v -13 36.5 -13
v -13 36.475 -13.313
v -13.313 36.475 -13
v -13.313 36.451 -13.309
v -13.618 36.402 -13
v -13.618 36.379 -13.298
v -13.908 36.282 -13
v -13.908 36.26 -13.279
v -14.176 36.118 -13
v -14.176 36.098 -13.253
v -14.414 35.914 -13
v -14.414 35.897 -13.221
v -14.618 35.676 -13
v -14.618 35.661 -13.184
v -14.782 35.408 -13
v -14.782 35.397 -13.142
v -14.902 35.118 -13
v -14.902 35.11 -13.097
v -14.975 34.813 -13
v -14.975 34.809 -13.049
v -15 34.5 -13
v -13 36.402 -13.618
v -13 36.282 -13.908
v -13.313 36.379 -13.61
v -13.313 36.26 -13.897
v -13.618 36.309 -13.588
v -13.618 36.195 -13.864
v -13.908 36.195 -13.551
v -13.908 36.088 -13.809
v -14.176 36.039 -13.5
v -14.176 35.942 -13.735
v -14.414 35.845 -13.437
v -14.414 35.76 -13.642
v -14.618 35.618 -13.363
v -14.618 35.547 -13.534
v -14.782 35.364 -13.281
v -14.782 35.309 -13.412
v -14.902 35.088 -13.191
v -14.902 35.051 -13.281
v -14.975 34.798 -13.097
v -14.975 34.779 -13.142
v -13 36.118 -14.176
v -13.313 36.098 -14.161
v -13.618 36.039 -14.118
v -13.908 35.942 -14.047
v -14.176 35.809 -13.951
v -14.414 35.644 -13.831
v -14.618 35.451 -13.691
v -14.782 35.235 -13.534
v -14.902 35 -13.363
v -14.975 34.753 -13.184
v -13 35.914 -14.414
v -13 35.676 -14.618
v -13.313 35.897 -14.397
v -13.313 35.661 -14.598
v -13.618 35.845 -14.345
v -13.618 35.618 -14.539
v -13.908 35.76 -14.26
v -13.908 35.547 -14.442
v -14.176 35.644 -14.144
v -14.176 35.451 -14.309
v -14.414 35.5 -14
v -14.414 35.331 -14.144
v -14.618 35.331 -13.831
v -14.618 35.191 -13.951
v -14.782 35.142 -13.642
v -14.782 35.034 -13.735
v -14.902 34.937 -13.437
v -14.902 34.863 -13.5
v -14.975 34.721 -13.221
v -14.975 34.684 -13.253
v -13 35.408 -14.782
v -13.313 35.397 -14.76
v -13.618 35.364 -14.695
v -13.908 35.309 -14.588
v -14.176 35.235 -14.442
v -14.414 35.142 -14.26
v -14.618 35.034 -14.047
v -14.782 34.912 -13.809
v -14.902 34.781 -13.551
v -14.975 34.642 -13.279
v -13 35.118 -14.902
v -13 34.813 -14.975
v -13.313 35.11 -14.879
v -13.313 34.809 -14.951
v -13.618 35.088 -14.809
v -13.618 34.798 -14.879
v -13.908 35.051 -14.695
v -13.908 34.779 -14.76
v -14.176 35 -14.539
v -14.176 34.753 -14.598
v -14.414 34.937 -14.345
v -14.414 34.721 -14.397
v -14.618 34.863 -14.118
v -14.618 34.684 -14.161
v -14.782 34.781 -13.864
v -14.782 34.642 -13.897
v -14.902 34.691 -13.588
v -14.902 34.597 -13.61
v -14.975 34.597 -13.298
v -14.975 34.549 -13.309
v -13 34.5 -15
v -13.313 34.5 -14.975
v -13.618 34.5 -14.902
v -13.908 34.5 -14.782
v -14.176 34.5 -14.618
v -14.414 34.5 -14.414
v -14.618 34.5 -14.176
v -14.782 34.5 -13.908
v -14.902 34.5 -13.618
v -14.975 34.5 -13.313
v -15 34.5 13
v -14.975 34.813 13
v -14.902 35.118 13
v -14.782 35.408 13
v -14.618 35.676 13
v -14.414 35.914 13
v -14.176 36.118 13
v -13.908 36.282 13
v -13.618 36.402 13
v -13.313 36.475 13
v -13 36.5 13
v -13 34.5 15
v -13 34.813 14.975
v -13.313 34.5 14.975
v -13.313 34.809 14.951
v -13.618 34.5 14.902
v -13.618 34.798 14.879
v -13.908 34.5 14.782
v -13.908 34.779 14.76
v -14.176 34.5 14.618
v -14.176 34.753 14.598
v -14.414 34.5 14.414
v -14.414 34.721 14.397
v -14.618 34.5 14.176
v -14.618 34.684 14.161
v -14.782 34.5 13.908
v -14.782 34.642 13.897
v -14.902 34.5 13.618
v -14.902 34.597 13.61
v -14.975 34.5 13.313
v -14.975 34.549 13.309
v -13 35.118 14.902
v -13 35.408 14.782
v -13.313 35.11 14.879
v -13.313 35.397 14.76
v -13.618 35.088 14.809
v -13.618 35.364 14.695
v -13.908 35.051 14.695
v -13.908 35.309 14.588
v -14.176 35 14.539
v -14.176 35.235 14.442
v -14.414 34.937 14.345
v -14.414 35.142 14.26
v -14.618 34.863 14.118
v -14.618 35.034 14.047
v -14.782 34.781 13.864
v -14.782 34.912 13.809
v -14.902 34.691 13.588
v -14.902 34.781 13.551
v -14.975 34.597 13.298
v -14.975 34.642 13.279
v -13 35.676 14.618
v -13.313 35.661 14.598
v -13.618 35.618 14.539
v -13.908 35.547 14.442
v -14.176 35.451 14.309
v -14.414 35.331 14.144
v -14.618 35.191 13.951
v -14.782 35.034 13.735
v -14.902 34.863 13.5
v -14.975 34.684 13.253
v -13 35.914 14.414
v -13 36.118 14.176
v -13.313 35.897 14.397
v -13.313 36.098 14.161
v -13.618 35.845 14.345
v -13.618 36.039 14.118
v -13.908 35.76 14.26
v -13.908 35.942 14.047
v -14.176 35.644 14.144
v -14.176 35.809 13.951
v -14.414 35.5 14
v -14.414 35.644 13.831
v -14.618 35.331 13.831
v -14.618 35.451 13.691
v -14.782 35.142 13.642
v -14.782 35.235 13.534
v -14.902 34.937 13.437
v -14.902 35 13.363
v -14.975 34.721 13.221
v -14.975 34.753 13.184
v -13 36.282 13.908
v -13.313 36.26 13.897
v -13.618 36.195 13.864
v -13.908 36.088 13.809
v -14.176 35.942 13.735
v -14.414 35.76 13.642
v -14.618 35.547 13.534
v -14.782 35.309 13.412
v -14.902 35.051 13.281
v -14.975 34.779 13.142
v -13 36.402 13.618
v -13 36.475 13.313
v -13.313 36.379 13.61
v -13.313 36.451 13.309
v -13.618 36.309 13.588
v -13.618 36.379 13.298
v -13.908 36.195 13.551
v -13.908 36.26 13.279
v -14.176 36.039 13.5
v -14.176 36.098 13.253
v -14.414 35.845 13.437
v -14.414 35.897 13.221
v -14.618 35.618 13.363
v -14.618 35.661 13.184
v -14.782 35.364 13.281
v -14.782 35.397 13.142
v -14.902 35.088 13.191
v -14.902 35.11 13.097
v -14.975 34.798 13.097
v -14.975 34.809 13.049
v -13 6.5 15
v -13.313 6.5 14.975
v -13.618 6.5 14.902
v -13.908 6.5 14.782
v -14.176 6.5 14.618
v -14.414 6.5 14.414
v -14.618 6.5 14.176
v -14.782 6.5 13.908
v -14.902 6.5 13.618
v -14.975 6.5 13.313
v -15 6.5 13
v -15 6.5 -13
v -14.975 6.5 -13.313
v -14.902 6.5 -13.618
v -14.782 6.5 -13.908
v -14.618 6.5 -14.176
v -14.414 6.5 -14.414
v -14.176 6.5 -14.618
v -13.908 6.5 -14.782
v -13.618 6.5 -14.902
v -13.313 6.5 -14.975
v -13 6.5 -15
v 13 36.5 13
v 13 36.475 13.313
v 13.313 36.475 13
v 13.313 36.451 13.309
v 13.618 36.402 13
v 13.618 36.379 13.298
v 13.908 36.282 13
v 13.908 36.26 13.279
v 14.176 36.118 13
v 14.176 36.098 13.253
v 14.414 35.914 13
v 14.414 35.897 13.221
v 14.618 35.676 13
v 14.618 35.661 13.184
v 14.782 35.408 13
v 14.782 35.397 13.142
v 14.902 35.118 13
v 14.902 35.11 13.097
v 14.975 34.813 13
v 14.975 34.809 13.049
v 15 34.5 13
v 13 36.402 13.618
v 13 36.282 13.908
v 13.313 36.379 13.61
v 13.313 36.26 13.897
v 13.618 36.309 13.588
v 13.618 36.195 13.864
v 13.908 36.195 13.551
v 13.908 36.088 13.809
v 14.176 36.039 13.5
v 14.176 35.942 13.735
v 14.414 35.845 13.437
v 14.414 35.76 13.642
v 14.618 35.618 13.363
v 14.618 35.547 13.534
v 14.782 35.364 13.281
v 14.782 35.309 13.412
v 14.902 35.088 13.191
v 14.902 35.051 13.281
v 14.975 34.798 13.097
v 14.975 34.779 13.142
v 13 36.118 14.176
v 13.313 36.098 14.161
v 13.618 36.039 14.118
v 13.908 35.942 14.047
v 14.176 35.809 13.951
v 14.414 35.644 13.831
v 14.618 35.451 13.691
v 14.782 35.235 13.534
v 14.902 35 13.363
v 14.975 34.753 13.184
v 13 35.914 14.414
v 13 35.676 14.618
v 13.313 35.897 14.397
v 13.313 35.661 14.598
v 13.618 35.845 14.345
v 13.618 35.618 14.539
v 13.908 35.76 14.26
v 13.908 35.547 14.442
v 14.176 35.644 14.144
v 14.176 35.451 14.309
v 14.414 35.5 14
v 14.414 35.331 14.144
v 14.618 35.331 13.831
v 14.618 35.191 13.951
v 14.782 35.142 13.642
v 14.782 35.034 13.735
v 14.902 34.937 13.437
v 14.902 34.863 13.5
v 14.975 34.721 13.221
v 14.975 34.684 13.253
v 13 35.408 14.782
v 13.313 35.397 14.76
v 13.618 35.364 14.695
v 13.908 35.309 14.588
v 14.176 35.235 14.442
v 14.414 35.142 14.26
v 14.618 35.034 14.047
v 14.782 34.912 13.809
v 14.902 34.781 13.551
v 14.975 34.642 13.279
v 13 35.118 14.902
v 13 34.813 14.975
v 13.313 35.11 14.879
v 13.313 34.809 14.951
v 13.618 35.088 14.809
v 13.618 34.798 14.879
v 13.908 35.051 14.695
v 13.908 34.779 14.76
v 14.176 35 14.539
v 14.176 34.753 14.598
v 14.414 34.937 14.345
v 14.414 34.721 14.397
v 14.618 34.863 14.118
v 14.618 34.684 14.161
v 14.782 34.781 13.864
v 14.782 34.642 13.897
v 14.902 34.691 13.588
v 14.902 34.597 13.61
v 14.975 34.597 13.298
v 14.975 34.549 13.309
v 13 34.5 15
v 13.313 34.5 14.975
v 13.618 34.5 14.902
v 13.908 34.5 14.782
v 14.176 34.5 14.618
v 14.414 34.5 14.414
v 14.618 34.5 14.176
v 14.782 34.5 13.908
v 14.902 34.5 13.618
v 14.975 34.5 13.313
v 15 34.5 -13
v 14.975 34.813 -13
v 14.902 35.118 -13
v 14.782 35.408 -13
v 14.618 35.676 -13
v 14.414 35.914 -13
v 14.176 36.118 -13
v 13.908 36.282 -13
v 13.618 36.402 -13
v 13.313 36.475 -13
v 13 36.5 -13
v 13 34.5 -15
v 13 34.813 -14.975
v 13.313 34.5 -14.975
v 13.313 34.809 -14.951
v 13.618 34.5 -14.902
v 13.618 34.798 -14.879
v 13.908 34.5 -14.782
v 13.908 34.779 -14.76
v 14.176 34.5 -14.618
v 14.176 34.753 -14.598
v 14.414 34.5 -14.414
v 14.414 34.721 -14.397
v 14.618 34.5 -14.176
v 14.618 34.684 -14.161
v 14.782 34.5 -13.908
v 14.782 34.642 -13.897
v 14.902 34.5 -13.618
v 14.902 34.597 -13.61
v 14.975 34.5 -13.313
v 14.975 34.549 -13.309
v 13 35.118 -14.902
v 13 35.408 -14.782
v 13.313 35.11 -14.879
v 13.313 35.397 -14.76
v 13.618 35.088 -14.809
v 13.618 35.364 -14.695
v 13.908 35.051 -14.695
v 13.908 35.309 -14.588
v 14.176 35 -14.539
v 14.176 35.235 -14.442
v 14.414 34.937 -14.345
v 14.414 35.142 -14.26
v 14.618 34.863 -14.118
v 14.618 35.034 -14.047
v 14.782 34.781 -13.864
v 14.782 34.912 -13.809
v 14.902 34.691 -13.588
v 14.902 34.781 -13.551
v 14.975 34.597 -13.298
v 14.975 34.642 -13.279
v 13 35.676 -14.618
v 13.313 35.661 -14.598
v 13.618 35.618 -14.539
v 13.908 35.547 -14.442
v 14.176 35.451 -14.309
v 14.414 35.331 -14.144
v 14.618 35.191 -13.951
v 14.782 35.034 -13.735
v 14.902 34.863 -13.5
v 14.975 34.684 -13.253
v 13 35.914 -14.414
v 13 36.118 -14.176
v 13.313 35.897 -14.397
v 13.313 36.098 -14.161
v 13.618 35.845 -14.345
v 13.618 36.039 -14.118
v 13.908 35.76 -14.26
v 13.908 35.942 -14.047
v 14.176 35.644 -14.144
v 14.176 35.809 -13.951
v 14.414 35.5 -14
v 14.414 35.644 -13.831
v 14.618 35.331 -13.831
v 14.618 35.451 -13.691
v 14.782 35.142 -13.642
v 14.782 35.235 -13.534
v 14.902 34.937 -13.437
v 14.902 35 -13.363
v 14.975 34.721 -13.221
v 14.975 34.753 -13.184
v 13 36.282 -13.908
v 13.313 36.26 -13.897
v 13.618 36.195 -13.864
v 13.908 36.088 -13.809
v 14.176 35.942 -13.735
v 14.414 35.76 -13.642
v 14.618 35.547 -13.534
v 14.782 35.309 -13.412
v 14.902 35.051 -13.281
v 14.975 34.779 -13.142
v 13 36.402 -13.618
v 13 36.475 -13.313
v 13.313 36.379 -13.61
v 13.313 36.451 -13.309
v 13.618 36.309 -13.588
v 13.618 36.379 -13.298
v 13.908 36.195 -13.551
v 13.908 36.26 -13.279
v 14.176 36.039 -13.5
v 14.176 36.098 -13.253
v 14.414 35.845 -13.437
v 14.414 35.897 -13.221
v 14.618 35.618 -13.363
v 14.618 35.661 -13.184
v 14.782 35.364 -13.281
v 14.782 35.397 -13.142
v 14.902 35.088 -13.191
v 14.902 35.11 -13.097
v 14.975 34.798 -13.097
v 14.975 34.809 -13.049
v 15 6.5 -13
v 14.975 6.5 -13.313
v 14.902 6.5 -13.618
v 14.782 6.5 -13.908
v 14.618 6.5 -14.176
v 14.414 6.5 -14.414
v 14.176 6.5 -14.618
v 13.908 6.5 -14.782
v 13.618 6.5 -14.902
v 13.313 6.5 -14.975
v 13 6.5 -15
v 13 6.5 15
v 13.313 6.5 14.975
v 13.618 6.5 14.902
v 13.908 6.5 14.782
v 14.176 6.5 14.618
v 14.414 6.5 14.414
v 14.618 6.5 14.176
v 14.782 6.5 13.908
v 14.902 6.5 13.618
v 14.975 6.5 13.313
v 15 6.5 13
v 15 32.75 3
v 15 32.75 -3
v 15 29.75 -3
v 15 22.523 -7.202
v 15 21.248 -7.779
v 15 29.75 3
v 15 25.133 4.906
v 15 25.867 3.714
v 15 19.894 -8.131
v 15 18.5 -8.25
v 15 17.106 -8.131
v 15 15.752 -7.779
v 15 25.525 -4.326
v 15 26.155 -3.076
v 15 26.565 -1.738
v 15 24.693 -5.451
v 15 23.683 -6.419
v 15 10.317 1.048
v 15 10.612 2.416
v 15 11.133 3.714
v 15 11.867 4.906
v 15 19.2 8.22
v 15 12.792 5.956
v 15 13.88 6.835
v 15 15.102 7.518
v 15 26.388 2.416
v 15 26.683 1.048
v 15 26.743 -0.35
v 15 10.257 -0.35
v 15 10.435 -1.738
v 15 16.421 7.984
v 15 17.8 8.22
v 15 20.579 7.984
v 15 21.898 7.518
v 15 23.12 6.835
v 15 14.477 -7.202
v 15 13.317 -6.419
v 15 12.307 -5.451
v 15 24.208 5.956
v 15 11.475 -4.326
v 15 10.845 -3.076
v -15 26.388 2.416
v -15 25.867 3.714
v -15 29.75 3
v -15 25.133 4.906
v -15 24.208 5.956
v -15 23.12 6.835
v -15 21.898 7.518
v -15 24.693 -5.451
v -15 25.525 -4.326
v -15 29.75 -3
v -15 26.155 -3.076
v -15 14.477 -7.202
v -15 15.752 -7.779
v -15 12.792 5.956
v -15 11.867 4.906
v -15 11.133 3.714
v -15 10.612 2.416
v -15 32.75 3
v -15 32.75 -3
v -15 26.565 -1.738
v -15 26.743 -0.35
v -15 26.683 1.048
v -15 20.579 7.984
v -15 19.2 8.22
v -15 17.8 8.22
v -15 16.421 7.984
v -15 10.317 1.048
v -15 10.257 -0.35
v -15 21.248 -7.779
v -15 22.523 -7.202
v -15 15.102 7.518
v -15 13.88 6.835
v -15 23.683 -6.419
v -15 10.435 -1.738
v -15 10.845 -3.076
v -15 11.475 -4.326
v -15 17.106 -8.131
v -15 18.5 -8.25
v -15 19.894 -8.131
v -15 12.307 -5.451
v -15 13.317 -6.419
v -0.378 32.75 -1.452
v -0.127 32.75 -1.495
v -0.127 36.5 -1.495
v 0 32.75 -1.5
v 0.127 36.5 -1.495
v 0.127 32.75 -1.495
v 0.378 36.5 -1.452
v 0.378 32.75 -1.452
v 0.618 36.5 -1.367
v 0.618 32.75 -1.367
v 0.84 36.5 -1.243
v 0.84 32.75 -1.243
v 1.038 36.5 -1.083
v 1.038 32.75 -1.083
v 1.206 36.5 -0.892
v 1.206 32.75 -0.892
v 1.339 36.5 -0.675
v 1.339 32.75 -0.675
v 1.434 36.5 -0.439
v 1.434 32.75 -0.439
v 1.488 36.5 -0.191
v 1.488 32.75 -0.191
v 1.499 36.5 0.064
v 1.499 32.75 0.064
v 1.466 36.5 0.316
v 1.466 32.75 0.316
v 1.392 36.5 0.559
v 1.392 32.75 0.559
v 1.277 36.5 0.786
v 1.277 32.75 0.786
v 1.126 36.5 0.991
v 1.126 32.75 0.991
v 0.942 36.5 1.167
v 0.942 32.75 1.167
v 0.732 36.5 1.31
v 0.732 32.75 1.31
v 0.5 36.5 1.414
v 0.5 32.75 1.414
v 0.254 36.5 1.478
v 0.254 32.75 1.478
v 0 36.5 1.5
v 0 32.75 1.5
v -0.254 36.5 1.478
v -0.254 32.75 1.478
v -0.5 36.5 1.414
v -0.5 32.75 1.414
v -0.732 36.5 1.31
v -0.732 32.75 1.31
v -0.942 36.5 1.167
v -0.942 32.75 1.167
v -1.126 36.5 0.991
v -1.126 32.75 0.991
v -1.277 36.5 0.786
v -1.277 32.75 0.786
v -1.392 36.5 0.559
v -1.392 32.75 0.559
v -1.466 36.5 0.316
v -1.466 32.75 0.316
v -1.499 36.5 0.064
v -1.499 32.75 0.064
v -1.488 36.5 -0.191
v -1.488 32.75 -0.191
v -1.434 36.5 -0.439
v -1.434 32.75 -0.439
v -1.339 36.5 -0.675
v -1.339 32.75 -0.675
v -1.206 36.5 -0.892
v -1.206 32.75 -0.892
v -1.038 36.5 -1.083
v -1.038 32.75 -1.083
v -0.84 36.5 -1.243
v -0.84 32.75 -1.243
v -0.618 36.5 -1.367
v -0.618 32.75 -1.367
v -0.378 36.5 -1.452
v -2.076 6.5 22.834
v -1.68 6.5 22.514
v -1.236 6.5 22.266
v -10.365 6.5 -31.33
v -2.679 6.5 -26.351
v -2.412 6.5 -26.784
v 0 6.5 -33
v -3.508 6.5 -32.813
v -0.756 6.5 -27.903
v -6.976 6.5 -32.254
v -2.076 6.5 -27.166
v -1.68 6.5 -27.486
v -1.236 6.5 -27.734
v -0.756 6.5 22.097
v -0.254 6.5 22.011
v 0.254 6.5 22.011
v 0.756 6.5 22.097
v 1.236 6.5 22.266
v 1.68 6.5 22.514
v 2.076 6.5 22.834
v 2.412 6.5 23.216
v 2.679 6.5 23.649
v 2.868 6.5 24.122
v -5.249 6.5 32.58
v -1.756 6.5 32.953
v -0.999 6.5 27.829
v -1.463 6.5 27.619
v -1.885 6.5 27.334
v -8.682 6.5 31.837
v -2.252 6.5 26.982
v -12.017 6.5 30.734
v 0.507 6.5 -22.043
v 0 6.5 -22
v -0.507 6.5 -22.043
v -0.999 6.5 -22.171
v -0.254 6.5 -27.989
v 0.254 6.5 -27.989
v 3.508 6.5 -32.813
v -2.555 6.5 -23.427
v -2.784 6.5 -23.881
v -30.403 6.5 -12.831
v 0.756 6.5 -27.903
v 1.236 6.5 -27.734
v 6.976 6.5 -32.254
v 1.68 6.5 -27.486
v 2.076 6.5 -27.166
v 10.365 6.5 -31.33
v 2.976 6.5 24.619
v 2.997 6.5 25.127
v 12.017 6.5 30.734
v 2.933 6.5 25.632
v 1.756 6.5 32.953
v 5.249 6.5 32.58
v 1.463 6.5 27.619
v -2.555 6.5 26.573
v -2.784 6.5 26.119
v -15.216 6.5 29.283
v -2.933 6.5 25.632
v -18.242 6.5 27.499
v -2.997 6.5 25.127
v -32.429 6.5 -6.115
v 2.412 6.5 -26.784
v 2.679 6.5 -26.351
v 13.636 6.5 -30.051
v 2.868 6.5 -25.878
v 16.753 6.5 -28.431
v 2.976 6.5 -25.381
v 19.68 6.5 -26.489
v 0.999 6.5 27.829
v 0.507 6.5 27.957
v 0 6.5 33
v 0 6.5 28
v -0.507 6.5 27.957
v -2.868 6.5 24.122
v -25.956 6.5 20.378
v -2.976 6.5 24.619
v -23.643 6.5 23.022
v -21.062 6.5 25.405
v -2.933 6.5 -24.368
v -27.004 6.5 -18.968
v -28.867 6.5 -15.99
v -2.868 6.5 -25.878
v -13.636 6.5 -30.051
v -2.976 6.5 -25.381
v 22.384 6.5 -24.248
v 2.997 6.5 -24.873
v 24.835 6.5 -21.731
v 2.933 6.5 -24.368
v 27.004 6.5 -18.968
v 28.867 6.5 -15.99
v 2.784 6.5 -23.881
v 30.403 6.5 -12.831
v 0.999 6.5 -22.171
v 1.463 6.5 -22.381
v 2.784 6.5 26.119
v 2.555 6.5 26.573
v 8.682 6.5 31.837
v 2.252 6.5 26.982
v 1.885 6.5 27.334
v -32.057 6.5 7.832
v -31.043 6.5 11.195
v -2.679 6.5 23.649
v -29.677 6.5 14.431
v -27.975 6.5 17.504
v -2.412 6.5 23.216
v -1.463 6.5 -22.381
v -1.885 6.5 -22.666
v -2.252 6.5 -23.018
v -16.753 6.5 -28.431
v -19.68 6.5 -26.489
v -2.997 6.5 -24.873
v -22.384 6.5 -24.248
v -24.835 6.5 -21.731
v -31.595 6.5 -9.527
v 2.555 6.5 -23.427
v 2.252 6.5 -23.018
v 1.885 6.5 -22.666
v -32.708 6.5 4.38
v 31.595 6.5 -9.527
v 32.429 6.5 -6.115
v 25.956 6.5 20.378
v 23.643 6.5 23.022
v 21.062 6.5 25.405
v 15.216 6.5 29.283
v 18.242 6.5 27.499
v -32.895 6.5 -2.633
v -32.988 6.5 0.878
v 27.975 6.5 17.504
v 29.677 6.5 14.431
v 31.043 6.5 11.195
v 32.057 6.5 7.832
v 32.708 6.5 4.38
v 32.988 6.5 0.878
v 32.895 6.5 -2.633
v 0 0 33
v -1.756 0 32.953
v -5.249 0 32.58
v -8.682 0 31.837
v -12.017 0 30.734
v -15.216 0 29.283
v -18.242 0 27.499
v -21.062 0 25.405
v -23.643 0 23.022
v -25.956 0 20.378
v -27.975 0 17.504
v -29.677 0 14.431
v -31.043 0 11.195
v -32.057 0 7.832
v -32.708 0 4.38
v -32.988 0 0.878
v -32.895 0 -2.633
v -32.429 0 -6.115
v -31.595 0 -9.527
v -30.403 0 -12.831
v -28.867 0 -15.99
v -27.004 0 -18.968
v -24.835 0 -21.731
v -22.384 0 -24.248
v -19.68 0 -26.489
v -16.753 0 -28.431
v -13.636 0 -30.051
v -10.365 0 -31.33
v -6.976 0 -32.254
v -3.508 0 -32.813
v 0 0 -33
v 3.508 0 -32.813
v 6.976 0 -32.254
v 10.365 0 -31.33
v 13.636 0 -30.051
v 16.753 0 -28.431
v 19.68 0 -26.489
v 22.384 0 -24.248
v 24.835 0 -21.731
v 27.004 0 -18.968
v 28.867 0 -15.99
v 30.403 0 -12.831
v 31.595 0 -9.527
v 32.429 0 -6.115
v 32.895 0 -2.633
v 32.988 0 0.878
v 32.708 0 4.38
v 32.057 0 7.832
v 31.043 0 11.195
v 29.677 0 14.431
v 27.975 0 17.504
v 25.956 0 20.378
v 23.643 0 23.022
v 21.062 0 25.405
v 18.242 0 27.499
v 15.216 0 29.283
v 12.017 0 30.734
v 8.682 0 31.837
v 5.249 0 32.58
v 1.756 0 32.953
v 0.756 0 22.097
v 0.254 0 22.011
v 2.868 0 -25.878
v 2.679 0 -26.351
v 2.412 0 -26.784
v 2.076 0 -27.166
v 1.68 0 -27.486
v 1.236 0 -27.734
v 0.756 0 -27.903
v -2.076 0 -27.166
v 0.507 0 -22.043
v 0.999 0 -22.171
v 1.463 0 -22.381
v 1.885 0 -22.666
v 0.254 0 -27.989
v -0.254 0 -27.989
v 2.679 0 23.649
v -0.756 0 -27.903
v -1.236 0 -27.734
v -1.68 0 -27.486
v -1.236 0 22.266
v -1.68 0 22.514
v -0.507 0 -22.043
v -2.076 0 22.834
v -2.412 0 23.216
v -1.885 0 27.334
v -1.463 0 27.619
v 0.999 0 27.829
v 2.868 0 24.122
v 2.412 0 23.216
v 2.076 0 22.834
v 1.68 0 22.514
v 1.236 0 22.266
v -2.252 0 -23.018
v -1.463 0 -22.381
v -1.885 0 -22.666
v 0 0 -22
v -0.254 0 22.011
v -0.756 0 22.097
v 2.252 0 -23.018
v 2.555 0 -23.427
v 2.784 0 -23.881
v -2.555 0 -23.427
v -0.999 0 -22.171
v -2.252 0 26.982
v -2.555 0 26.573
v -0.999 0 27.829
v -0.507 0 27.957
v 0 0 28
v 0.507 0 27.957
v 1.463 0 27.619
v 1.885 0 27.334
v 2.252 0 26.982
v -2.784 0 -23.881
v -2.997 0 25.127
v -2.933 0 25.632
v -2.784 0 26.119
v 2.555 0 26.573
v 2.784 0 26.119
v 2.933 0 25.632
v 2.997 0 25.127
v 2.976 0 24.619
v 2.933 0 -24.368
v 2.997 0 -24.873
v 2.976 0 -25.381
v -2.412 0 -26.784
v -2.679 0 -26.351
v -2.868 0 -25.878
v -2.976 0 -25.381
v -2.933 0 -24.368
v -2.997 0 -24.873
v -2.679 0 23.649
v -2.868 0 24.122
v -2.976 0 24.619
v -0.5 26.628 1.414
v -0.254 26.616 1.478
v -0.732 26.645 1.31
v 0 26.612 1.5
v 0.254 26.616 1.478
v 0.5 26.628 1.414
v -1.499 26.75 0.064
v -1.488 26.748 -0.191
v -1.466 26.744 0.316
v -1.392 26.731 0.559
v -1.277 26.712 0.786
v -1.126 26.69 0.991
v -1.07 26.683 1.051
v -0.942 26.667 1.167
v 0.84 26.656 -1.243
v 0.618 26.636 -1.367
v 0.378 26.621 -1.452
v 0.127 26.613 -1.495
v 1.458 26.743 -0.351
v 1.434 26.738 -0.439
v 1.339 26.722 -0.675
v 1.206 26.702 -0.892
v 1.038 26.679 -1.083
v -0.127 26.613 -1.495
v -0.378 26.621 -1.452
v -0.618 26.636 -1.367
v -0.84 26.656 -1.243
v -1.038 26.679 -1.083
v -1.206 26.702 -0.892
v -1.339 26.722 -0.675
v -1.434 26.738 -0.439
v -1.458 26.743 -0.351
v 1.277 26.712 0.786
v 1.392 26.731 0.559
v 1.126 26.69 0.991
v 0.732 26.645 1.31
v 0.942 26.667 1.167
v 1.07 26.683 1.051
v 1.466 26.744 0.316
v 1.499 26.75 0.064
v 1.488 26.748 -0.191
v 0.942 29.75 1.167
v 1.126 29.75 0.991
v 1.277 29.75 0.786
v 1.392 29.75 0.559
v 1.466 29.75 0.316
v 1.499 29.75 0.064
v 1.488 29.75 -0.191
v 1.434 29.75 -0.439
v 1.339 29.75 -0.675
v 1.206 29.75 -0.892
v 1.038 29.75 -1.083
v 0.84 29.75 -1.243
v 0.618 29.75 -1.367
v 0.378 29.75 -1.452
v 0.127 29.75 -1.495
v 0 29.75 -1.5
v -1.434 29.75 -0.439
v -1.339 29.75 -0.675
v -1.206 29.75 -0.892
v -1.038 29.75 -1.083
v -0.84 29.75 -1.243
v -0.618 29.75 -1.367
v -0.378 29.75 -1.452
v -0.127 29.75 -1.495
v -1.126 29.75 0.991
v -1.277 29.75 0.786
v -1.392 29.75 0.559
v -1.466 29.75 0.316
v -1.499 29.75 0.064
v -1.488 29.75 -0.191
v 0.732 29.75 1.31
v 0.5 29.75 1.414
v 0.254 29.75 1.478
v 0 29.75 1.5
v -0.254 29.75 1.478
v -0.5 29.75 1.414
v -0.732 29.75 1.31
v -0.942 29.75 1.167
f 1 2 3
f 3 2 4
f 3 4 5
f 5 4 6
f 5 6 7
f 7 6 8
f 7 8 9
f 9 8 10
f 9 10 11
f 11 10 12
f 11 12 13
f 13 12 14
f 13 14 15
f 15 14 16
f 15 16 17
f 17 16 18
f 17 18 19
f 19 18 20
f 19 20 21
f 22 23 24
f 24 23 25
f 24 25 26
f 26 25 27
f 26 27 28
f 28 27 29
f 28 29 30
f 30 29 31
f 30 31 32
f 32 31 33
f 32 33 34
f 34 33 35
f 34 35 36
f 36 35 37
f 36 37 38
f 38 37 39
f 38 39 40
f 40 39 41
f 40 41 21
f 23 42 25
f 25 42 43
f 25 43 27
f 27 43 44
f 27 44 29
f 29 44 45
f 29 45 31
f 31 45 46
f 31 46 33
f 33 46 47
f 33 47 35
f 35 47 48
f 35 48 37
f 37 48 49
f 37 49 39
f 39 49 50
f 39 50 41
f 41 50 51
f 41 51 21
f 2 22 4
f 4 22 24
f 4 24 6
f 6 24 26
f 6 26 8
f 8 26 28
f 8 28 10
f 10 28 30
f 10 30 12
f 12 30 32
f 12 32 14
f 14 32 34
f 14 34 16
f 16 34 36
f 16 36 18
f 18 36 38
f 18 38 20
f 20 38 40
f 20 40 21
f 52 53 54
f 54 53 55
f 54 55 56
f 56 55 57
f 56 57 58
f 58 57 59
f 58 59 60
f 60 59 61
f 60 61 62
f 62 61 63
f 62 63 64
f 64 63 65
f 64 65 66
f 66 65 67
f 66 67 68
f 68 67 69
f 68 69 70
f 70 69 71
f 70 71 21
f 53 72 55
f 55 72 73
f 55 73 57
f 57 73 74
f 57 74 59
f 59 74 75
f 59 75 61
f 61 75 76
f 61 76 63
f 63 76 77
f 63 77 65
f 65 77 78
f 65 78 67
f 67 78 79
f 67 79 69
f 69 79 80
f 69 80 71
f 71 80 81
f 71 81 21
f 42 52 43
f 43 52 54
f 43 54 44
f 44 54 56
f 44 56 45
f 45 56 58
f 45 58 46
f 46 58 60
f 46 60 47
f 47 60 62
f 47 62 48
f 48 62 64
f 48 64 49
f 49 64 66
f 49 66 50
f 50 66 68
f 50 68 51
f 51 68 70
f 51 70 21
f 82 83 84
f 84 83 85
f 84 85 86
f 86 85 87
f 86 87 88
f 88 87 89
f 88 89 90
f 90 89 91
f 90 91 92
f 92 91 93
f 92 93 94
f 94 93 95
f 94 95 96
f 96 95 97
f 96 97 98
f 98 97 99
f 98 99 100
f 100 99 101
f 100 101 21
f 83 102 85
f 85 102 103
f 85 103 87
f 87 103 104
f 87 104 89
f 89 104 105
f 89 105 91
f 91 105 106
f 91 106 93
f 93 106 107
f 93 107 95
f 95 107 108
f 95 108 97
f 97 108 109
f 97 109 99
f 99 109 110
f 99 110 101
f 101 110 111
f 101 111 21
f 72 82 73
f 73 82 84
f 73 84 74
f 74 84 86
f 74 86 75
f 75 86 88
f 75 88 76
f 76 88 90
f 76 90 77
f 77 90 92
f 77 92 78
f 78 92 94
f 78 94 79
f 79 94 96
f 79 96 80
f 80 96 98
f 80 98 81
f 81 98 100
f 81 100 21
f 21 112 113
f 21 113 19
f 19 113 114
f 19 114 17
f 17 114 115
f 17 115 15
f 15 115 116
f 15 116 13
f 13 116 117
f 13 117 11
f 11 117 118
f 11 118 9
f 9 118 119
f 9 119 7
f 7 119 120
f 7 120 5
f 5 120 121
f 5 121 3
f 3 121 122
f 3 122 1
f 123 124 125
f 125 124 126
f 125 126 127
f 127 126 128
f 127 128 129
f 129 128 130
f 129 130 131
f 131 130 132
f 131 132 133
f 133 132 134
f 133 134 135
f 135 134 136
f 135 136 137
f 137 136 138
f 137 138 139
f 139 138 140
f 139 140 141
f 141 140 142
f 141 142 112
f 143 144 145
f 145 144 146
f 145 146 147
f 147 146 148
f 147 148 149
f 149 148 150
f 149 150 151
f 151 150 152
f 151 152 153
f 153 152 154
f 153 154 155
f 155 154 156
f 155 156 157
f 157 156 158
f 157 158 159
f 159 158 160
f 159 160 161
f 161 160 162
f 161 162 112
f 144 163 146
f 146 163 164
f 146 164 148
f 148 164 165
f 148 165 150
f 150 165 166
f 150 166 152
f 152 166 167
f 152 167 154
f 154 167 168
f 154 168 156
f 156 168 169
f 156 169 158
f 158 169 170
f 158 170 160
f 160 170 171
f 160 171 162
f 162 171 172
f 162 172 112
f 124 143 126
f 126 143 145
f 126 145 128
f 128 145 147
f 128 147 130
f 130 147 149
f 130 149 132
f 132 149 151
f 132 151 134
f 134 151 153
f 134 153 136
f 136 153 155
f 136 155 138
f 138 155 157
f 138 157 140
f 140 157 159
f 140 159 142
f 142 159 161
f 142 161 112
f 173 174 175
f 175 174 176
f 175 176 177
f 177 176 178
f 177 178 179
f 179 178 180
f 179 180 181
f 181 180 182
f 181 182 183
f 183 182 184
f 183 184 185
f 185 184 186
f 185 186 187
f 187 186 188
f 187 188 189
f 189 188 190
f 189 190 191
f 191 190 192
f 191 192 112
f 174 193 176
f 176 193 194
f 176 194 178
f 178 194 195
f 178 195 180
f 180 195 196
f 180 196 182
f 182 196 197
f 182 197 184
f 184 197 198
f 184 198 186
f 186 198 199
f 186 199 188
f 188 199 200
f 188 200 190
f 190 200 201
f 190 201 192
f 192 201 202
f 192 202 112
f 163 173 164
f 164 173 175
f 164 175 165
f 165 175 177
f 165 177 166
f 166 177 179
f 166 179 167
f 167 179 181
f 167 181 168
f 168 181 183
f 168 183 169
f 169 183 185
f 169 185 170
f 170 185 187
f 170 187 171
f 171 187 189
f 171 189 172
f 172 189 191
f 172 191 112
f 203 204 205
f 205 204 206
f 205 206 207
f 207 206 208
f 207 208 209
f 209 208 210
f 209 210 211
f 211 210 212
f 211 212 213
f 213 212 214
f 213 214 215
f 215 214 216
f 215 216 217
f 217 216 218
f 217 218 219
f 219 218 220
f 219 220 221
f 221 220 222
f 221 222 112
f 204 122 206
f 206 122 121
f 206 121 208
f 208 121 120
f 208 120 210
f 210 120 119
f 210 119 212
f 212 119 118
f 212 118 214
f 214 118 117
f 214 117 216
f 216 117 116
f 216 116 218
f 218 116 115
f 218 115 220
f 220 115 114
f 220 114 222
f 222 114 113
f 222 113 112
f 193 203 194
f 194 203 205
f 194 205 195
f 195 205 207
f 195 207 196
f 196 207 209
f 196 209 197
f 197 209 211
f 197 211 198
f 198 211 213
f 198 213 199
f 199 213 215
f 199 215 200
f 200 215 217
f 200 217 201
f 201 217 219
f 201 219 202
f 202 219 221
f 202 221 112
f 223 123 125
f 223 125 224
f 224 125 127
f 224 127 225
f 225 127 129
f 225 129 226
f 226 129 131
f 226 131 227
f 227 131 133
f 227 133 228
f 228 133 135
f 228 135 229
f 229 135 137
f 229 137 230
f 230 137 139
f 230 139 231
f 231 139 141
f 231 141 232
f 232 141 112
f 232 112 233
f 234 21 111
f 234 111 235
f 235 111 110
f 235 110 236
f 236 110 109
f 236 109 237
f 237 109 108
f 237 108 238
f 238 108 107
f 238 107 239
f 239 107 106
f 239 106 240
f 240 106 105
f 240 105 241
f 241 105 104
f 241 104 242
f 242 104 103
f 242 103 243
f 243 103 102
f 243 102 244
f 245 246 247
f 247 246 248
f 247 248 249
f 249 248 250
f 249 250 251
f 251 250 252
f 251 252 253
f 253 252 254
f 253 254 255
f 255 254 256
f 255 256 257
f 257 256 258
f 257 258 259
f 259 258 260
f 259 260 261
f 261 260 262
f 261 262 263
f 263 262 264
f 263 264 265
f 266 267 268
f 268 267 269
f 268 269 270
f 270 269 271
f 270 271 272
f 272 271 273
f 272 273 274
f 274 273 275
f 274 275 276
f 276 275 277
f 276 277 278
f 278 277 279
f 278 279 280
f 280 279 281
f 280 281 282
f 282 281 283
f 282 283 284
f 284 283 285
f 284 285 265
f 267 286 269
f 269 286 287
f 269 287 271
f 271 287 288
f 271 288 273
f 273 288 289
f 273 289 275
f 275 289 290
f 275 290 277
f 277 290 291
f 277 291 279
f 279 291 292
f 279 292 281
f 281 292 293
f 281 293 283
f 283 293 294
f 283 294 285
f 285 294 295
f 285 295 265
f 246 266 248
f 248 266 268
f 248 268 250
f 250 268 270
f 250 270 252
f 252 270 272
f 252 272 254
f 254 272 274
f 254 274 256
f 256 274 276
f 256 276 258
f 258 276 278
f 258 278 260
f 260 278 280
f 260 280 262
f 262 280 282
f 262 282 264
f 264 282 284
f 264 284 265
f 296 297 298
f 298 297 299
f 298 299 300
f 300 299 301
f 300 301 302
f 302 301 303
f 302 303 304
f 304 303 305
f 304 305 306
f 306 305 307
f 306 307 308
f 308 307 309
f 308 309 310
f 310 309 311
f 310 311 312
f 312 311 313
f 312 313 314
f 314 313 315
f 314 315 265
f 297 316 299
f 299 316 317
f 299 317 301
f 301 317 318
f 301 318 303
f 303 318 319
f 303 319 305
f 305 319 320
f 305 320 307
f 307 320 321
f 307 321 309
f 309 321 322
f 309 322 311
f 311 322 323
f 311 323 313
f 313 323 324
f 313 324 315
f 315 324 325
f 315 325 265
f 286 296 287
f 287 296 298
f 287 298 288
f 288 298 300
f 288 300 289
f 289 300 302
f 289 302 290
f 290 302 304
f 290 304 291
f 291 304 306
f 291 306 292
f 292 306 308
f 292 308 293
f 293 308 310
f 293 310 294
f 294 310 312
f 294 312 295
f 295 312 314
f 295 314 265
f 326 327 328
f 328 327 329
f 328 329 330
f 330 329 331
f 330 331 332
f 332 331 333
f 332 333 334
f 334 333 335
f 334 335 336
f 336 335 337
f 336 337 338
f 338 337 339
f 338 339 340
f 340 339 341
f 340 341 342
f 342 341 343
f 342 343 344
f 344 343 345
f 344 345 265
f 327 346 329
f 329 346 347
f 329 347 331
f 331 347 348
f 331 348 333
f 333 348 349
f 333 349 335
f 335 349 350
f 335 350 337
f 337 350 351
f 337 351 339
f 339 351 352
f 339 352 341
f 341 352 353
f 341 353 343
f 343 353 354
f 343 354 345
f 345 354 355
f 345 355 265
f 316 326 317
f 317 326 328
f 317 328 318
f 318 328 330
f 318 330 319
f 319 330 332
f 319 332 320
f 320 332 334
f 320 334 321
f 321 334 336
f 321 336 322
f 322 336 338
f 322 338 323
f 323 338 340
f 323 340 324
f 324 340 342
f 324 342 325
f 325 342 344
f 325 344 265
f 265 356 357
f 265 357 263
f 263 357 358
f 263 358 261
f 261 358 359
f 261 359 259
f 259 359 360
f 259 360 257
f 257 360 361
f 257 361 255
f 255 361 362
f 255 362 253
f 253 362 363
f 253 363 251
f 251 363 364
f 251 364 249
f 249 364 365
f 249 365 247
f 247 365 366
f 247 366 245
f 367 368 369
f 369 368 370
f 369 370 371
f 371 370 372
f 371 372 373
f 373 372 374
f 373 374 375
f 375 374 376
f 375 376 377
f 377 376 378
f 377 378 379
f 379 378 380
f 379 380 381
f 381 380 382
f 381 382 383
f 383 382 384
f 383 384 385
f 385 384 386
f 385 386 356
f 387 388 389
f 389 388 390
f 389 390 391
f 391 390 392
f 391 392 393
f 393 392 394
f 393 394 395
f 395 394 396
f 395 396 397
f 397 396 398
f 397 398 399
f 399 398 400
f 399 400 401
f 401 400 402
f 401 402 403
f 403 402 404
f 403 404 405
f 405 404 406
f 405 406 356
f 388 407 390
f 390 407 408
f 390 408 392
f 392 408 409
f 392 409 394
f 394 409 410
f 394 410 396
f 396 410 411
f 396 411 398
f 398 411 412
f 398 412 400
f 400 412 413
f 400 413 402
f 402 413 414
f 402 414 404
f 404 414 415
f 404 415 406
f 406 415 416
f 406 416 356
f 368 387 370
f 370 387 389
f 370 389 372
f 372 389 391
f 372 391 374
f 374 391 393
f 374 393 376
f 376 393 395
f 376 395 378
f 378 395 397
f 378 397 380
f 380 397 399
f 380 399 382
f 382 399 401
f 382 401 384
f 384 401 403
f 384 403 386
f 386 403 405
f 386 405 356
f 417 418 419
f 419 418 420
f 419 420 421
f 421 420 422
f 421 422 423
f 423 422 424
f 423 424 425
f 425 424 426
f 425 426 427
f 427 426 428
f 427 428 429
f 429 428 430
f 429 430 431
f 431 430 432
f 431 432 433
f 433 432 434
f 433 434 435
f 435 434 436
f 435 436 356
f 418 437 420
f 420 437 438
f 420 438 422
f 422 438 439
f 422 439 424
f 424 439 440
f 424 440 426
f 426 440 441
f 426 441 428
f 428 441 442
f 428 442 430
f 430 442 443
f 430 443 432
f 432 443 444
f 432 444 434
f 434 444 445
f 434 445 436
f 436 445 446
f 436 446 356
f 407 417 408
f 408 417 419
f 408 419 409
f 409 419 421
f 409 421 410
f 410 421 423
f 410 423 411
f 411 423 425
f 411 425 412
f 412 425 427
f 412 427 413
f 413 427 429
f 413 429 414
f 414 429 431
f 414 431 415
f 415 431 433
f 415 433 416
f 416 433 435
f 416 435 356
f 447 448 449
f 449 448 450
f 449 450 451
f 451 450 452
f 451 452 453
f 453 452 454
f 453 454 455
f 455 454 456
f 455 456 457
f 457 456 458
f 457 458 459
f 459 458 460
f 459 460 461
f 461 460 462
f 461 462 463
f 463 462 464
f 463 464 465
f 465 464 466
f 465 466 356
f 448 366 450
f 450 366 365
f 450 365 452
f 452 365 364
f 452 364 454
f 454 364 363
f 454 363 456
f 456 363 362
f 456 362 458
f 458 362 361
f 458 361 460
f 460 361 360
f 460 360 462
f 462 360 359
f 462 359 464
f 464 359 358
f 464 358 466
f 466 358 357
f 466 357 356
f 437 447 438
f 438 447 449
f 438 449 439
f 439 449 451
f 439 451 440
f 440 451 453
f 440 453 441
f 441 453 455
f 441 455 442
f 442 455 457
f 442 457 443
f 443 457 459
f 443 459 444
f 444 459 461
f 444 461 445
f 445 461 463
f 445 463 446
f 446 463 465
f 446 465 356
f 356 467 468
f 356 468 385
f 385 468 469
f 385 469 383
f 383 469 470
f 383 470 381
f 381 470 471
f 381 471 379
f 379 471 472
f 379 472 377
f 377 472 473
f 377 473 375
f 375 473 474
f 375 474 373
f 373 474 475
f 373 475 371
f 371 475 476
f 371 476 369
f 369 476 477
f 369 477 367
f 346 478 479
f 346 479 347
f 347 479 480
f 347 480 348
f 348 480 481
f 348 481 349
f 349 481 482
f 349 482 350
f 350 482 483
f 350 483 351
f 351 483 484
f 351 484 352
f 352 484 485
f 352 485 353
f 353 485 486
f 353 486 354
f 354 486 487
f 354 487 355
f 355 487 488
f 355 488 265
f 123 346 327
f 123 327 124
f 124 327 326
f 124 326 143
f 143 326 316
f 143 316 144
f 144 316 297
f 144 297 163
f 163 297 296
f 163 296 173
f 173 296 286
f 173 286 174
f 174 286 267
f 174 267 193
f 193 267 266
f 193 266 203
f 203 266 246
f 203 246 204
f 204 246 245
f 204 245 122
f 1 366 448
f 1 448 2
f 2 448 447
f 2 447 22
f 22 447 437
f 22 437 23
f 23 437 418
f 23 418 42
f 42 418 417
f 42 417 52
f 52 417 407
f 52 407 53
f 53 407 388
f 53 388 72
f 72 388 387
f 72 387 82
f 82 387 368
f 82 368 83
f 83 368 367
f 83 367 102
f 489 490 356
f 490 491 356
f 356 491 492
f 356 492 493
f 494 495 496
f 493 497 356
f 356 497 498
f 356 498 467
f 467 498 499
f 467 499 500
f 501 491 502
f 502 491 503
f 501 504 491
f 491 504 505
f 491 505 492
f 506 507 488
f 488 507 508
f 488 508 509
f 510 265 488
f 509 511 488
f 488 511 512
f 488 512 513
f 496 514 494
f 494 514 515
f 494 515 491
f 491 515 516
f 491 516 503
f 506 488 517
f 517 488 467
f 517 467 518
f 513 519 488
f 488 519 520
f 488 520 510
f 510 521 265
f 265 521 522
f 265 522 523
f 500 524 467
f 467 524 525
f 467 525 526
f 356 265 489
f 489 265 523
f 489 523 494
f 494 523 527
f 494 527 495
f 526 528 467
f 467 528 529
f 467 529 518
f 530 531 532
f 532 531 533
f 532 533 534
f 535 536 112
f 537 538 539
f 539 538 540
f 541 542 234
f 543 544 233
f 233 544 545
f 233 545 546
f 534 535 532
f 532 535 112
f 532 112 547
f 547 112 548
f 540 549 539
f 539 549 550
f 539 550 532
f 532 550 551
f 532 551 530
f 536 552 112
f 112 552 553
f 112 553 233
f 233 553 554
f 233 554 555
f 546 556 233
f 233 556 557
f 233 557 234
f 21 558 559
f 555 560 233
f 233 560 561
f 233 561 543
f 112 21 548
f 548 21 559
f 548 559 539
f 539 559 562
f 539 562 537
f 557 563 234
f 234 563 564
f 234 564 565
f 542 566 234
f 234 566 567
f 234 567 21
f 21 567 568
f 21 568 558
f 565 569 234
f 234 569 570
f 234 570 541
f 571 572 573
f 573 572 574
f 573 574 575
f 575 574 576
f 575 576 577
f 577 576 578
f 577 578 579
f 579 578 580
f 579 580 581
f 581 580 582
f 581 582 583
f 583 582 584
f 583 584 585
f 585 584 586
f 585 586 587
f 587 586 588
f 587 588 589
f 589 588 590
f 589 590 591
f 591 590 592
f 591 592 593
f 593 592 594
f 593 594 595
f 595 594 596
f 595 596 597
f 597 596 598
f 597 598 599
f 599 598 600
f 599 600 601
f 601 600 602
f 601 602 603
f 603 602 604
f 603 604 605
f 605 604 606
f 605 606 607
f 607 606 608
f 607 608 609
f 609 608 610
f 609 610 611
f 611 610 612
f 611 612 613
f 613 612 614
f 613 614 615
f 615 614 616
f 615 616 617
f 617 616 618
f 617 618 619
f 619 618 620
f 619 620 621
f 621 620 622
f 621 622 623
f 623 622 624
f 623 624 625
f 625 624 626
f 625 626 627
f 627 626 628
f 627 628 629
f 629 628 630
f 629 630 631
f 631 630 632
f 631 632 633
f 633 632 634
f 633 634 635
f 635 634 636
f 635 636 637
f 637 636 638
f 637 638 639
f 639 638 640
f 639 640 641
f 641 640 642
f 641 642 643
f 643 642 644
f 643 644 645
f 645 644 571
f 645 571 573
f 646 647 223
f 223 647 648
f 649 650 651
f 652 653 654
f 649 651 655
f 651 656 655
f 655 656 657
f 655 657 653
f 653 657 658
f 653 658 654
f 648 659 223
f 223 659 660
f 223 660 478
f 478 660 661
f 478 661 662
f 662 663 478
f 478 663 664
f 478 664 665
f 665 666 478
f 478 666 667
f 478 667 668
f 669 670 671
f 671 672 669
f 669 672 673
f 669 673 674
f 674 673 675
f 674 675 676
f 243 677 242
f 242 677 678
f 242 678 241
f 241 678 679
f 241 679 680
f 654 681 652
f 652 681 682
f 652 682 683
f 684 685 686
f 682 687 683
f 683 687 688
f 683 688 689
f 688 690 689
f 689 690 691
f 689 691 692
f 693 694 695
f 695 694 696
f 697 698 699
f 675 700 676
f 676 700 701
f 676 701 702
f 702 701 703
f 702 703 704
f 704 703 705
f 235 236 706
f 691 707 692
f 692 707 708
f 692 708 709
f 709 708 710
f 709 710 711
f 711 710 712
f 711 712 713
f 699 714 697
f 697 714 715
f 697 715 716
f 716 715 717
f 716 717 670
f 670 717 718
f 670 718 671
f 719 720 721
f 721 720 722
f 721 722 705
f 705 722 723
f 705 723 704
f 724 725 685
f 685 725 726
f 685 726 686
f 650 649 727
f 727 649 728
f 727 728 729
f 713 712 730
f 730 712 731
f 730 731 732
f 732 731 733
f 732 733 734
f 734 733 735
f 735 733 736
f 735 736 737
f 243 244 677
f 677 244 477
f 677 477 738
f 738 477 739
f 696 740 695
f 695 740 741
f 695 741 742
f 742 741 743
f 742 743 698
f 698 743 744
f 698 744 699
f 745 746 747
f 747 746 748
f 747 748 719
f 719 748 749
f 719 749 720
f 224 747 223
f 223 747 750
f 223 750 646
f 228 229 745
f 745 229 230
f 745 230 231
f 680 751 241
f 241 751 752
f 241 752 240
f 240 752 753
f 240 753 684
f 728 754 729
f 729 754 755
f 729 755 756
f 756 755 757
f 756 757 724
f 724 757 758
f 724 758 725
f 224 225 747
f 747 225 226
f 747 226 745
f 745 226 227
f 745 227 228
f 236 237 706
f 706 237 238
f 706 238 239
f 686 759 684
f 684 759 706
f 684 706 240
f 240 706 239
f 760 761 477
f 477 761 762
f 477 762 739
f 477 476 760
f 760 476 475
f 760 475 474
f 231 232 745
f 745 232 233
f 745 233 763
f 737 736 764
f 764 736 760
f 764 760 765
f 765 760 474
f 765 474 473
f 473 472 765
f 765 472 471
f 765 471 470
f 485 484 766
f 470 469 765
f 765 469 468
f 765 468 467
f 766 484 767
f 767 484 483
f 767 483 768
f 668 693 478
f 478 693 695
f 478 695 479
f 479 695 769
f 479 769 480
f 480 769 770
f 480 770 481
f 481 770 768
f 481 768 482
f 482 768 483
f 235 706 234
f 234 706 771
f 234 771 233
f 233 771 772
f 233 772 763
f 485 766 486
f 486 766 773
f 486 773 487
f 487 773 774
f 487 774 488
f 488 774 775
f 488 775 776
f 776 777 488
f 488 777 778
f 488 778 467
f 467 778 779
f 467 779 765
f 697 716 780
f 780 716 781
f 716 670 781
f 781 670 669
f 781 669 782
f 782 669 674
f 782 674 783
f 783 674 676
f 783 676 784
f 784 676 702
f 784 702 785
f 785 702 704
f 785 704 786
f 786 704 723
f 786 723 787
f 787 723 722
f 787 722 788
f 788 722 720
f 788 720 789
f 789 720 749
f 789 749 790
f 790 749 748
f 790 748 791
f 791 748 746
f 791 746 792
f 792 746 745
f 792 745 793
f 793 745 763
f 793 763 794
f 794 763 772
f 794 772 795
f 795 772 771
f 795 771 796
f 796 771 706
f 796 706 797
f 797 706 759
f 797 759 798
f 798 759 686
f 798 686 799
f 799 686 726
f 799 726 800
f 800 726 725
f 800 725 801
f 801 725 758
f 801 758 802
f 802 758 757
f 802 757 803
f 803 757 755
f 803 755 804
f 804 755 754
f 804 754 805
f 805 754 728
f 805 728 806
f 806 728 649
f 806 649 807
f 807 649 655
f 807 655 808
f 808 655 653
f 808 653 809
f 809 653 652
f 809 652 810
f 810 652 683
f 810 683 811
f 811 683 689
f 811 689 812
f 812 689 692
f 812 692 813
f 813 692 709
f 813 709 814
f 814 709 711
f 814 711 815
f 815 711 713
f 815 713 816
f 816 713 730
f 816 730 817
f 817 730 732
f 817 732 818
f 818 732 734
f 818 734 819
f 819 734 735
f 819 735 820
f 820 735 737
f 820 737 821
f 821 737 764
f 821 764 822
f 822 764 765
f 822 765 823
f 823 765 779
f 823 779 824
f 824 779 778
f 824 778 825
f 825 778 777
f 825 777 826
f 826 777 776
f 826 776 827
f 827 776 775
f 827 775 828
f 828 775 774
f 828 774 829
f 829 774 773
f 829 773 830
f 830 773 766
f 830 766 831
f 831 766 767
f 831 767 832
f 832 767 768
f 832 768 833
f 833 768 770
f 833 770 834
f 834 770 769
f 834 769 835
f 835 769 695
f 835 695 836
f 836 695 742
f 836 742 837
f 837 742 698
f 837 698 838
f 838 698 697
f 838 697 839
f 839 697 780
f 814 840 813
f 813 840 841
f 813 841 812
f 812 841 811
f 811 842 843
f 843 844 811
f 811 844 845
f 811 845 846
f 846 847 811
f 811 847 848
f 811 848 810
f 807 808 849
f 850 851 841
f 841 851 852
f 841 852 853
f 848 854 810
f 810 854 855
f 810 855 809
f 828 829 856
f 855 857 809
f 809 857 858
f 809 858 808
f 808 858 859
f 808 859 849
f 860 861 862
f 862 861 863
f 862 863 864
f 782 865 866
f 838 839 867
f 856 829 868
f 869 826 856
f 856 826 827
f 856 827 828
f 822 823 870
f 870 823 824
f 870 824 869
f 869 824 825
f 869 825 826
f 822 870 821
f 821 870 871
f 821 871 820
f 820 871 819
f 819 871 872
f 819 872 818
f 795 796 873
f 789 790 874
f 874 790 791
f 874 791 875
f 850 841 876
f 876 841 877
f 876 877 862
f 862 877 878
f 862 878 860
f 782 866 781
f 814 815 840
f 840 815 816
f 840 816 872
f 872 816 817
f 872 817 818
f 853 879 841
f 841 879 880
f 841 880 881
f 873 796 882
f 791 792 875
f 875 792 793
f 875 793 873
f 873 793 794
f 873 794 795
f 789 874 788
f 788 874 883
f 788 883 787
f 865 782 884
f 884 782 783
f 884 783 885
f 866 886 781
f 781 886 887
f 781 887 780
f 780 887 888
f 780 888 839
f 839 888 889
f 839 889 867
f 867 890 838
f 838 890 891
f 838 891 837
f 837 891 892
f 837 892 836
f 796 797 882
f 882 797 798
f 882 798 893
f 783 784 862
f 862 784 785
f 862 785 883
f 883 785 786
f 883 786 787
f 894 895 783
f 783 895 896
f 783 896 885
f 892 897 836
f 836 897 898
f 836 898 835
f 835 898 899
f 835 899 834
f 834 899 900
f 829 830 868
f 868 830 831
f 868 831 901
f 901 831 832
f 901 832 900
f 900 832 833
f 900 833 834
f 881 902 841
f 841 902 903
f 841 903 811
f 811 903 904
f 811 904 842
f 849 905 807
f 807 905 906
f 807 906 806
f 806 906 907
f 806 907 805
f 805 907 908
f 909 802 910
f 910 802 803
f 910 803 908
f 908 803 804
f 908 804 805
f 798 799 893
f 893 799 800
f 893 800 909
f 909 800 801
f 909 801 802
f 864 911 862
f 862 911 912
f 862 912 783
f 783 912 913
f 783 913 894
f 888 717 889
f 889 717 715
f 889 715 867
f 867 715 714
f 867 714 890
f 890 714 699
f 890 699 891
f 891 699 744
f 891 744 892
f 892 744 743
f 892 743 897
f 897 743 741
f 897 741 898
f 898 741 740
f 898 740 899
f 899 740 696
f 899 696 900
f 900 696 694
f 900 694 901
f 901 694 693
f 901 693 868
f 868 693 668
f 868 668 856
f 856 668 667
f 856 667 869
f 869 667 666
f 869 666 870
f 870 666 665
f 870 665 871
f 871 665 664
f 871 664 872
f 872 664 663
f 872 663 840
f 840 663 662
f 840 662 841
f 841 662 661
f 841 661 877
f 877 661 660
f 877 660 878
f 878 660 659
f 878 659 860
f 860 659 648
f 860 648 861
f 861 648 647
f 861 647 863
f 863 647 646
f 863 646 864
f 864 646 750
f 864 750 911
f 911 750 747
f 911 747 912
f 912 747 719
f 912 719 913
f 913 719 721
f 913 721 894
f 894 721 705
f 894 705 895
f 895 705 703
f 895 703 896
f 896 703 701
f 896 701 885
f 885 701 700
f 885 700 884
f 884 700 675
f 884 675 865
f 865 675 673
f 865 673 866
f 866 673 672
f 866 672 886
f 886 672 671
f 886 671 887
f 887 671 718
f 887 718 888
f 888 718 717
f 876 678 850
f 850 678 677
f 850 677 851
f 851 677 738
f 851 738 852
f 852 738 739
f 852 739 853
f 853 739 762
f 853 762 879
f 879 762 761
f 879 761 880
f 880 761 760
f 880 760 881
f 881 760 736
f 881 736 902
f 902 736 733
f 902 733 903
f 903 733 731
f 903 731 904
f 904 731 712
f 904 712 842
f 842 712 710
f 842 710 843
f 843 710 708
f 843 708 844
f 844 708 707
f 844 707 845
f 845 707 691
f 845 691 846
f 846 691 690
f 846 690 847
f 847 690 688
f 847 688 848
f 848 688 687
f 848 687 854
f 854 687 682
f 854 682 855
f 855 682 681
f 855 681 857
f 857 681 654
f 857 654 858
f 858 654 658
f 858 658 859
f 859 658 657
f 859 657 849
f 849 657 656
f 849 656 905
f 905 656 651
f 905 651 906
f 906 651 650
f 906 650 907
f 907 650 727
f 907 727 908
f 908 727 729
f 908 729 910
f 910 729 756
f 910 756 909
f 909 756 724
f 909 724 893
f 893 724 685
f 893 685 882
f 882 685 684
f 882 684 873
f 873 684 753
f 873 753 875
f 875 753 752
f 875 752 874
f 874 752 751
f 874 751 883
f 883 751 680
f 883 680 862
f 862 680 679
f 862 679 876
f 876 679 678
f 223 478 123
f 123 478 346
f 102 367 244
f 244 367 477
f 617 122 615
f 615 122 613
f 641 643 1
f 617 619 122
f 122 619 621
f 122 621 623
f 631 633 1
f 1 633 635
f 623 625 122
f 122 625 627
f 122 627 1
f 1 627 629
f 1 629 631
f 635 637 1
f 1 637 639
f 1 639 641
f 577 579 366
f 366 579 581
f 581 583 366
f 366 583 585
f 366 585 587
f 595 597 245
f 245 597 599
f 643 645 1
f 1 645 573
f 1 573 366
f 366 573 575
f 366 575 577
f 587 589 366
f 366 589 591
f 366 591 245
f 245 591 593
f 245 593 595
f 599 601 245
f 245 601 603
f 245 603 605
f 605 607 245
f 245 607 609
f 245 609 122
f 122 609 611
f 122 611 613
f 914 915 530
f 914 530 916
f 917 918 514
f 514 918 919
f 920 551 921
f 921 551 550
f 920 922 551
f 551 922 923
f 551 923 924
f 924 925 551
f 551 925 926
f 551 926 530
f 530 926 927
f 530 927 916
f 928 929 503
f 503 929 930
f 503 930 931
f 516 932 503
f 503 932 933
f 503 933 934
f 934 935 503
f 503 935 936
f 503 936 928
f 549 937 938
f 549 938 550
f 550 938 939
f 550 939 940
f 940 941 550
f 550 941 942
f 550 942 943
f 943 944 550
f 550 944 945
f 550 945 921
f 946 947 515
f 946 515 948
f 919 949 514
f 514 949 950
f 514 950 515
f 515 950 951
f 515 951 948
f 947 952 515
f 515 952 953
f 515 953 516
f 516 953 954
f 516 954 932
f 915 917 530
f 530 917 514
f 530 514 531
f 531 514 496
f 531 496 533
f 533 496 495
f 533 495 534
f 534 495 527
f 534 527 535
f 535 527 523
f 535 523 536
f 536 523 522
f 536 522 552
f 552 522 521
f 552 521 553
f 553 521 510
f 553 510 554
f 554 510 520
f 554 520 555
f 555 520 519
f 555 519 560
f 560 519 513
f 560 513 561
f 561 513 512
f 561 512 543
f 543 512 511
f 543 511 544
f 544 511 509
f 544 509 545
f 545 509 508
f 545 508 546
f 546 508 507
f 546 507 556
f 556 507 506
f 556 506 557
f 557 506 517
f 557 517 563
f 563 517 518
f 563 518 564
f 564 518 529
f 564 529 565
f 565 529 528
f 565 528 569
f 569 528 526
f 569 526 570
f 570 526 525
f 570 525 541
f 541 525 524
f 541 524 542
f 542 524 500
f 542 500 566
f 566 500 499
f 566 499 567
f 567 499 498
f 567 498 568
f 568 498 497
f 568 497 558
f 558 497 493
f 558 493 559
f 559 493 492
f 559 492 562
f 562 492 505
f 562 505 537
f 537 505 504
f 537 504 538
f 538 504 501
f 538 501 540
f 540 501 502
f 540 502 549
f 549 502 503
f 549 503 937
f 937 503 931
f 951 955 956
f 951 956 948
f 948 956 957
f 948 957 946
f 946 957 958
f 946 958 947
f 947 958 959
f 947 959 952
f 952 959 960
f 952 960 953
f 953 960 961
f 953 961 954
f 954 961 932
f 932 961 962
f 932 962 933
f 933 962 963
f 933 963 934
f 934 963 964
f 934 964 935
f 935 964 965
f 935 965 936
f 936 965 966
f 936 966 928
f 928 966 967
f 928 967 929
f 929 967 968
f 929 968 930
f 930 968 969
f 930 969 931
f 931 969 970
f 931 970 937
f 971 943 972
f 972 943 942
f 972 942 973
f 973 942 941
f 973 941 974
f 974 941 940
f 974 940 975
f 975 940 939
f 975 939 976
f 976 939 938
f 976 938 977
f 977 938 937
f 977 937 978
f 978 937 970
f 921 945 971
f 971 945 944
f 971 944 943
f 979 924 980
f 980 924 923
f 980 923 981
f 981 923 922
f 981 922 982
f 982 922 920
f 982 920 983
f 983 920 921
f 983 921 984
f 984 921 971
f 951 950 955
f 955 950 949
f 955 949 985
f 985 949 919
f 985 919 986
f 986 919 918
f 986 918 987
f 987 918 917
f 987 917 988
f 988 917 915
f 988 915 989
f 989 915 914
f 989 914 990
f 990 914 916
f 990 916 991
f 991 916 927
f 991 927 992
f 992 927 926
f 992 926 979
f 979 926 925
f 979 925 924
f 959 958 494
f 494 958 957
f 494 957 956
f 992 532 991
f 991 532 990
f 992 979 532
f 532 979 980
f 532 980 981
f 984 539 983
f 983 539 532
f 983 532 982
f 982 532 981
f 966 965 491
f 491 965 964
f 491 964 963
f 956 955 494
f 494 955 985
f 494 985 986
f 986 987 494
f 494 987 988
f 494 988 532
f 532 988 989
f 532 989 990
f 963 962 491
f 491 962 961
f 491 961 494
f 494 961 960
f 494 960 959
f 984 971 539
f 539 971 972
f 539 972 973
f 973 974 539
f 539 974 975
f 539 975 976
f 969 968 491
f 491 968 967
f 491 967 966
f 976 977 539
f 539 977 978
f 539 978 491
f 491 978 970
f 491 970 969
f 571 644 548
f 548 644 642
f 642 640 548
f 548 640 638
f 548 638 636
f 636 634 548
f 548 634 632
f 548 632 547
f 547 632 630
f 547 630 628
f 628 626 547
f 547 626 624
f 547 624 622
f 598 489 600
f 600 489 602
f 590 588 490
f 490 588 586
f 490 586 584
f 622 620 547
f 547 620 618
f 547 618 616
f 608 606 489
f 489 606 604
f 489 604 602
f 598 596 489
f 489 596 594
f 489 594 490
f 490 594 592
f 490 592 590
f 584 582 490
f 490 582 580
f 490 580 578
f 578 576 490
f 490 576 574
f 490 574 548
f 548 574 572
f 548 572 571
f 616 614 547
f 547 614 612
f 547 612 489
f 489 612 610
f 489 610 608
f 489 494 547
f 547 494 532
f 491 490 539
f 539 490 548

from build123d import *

# Parameters (mm, degrees)
SKETCH1_R           = 33
BOSS_EXTRUDE2_DEPTH = 6.5
SKETCH4_R           = 3
CUT_EXTRUDE1_DEPTH  = 6.5
BOSS_EXTRUDE3_DEPTH = 30
SKETCH6_R           = 8.25
CUT_EXTRUDE2_DEPTH  = 30
SKETCH8_R           = 1.5
CUT_EXTRUDE3_DEPTH  = 10
CUT_EXTRUDE4_DEPTH  = 30
FILLET12_R          = 2
FILLET13_R          = 2
FILLET14_R          = 2
FILLET15_R          = 2


with BuildPart() as part:
    # Sketch1 → Boss-Extrude2 (new body)
    with BuildSketch(Plane(origin=(0, 0, 0), x_dir=(1, 0, 0), z_dir=(0, 1, 0))):
        with Locations(Location((0, 0, 0), (0, 0, 90))):
            Circle(SKETCH1_R)
    extrude(amount=BOSS_EXTRUDE2_DEPTH)

    # Sketch4 → Cut-Extrude1 (cut)
    with BuildSketch(Plane(origin=(0, 6.5, 0), x_dir=(1, 0, 0), z_dir=(0, 1, 0))):
        with Locations(Location((0, 25, 0), (0, 0, 270))):
            Circle(SKETCH4_R)
        with Locations(Location((0, -25, 0), (0, 0, 270))):
            Circle(SKETCH4_R)
    extrude(amount=-CUT_EXTRUDE1_DEPTH, mode=Mode.SUBTRACT)

    # Sketch5 → Boss-Extrude3 (add)
    with BuildSketch(Plane(origin=(0, 6.5, 0), x_dir=(1, 0, 0), z_dir=(0, 1, 0))):
        Polygon((15, 0), (0, 0), (-15, 0), (-15, -15), (15, -15), align=None)
        Polygon((-15, 0), (0, 0), (15, 0), (15, 15), (-15, 15), align=None)
    extrude(amount=BOSS_EXTRUDE3_DEPTH)

    # Sketch6 → Cut-Extrude2 (cut)
    with BuildSketch(Plane(origin=(15, 0, 0), x_dir=(0, 0, -1), z_dir=(1, 0, 0))):
        with Locations((0, 18.5)):
            Circle(SKETCH6_R)
    extrude(amount=-CUT_EXTRUDE2_DEPTH, mode=Mode.SUBTRACT)

    # Sketch8 → Cut-Extrude3 (cut)
    with BuildSketch(Plane(origin=(0, 36.5, 0), x_dir=(1, 0, 0), z_dir=(0, 1, 0))):
        with Locations(Location((0, 0, 0), (0, 0, 270))):
            Circle(SKETCH8_R)
    extrude(amount=-CUT_EXTRUDE3_DEPTH, mode=Mode.SUBTRACT)

    # Sketch9 → Cut-Extrude4 (cut)
    with BuildSketch(Plane.ZY.offset(15)):
        Polygon((3, 32.75), (0, 32.75), (-3, 32.75), (-3, 29.75), (3, 29.75), align=None)
    extrude(amount=-CUT_EXTRUDE4_DEPTH, mode=Mode.SUBTRACT)

    # Fillet12
    fillet12_edges = [part.edges().sort_by_distance(p)[0] for p in [
        (0, 36.5, -15),
    ]]
    fillet(fillet12_edges, radius=FILLET12_R)

    # Fillet13
    fillet13_edges = [part.edges().sort_by_distance(p)[0] for p in [
        (0, 36.5, 15),
    ]]
    fillet(fillet13_edges, radius=FILLET13_R)

    # Fillet14
    fillet14_edges = [part.edges().sort_by_distance(p)[0] for p in [
        (15, 20.5, -15),
        (15, 35.914213562, -14.414213562),
        (15, 20.5, 15),
        (15, 36.5, 0),
        (15, 35.914213562, 14.414213562),
    ]]
    fillet(fillet14_edges, radius=FILLET14_R)

    # Fillet15
    fillet15_edges = [part.edges().sort_by_distance(p)[0] for p in [
        (-15, 20.5, -15),
        (-15, 36.5, 0),
        (-15, 35.914213562, -14.414213562),
        (-15, 20.5, 15),
        (-15, 35.914213562, 14.414213562),
    ]]
    fillet(fillet15_edges, radius=FILLET15_R)


solid = part.part
